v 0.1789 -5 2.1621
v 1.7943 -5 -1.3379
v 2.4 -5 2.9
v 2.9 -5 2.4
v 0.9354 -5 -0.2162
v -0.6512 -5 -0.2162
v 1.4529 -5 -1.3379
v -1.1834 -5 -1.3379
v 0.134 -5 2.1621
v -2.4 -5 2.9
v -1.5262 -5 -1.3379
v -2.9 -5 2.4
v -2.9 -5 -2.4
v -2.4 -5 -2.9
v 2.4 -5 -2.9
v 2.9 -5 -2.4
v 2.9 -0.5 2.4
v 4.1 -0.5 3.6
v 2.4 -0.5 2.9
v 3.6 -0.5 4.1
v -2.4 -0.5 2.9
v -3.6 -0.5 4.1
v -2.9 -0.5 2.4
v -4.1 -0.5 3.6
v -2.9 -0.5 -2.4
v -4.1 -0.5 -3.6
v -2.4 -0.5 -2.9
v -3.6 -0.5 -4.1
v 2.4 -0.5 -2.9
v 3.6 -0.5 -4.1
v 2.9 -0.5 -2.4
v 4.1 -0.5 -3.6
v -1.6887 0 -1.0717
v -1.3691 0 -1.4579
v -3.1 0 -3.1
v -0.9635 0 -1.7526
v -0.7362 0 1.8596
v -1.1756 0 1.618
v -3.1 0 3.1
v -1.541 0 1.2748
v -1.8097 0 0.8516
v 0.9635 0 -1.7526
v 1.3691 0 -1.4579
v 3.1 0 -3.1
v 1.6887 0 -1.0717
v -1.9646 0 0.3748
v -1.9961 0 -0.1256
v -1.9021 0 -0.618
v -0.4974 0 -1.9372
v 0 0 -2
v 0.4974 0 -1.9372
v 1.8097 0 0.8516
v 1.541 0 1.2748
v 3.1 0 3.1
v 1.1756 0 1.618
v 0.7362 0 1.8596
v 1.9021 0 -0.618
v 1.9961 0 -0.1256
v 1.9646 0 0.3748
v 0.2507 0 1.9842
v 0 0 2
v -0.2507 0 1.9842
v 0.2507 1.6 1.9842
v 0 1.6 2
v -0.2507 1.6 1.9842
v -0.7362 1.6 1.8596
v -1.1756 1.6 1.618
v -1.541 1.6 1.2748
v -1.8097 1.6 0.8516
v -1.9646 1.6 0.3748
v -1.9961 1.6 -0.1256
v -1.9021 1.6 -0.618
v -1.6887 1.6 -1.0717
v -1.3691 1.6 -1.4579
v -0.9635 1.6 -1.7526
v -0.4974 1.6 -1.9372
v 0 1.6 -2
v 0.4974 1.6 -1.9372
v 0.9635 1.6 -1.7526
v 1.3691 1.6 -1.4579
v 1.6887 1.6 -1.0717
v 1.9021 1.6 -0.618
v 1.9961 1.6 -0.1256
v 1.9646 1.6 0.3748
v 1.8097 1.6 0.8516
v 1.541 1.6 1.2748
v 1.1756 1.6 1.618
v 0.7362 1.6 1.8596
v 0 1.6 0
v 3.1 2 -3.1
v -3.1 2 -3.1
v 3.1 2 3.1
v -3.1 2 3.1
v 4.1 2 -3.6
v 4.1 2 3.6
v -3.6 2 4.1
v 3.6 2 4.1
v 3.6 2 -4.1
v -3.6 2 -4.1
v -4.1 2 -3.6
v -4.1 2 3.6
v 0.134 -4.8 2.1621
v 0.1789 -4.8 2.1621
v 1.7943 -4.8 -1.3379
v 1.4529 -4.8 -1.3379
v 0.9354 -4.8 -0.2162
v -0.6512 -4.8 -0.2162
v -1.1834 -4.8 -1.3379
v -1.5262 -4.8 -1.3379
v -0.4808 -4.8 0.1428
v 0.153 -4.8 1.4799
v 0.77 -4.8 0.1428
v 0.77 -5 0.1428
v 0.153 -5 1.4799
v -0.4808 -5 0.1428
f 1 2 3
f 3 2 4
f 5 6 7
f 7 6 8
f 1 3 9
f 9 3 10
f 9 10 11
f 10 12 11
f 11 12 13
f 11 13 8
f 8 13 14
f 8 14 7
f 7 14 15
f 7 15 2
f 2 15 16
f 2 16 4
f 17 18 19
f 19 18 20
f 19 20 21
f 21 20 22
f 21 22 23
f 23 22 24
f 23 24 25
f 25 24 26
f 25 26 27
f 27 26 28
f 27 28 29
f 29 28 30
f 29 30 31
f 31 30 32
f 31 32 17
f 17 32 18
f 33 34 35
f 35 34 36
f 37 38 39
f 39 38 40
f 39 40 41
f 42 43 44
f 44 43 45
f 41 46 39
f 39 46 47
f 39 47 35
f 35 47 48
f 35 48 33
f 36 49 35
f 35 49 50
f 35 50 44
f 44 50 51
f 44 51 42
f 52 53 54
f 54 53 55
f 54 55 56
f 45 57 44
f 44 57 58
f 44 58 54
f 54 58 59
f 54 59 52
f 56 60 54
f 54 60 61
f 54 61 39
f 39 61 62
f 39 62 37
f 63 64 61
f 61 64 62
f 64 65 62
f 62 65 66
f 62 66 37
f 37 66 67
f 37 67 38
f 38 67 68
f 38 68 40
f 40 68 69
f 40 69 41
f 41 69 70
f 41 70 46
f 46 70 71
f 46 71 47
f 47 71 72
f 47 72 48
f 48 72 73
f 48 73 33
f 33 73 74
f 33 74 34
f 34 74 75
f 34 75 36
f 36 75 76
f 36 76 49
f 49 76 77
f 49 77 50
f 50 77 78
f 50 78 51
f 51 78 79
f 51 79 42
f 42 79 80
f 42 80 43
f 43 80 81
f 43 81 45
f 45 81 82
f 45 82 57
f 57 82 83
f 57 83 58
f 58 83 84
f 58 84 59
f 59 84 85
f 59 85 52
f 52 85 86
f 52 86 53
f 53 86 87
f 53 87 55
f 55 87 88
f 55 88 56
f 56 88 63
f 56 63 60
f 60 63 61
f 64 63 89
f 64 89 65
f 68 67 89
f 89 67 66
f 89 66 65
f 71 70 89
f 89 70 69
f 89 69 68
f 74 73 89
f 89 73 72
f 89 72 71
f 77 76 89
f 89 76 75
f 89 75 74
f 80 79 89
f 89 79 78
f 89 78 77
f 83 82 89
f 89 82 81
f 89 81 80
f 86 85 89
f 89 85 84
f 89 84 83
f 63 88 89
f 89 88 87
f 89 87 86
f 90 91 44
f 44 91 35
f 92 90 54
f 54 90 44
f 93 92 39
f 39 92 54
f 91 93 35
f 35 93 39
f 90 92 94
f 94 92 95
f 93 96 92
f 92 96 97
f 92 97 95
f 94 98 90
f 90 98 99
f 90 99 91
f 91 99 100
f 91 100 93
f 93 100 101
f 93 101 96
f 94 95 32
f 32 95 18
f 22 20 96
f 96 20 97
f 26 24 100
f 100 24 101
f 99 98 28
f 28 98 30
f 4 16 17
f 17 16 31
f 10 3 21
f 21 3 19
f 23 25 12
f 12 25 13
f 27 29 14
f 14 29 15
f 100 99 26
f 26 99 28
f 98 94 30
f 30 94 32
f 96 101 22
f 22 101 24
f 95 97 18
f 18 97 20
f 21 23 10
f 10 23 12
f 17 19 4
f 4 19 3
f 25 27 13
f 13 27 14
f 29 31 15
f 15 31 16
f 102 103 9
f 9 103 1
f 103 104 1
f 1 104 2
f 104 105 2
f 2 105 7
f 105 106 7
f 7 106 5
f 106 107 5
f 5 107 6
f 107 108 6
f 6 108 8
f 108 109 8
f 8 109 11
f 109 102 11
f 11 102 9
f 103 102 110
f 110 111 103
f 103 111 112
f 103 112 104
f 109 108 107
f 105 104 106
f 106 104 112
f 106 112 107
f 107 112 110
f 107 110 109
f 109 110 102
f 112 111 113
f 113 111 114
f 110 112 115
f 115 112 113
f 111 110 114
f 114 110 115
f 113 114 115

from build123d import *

# Parameters (mm, degrees)
SKETCH1_R           = 2
BOSS_EXTRUDE1_DEPTH = 1.6
SKETCH1_3_W         = 8.2
SKETCH1_3_H         = 8.2
SKETCH1_3_W_2       = 6.2
SKETCH1_3_H_2       = 6.2
BOSS_EXTRUDE2_DEPTH = 2
SKETCH1_4_W         = 8.2
SKETCH1_4_H         = 8.2
BOSS_EXTRUDE3_DEPTH = 0.5
SKETCH3_W           = 5.8
SKETCH3_H           = 5.8
BOSS_EXTRUDE4_DEPTH = 4.5
CHAMFER1_SIZE       = 0.5
CUT_EXTRUDE1_DEPTH  = 0.2


with BuildPart() as part:
    # Sketch1 → Boss-Extrude1 (new body)
    with BuildSketch(Plane(origin=(0, 0, 0), x_dir=(1, 0, 0), z_dir=(0, 1, 0))):
        Circle(SKETCH1_R)
    extrude(amount=BOSS_EXTRUDE1_DEPTH)



with BuildPart() as body_2:
    # Sketch1<3> → Boss-Extrude2 (new body)
    with BuildSketch(Plane(origin=(0, 0, 0), x_dir=(1, 0, 0), z_dir=(0, 1, 0))):
        Rectangle(SKETCH1_3_W, SKETCH1_3_H)
        Rectangle(SKETCH1_3_W_2, SKETCH1_3_H_2, mode=Mode.SUBTRACT)
    extrude(amount=BOSS_EXTRUDE2_DEPTH)


with BuildPart() as part_1:
    add(part.part)

    add(body_2.part)  # Boss-Extrude3 merges body 2
    # Sketch1<4> → Boss-Extrude3 (add)
    with BuildSketch(Plane(origin=(0, 0, 0), x_dir=(1, 0, 0), z_dir=(0, 1, 0))):
        Rectangle(SKETCH1_4_W, SKETCH1_4_H)
    extrude(amount=-BOSS_EXTRUDE3_DEPTH)

    # Sketch3 → Boss-Extrude4 (add)
    with BuildSketch(Plane.XZ.offset(0.5)):
        Rectangle(SKETCH3_W, SKETCH3_H)
    extrude(amount=BOSS_EXTRUDE4_DEPTH)

    # Chamfer1
    chamfer1_edges = [part_1.edges().sort_by_distance(p)[0] for p in [
        (-4.1, 0.75, -4.1),
        (4.1, 0.75, -4.1),
        (-4.1, 0.75, 4.1),
        (4.1, 0.75, 4.1),
        (-2.9, -2.75, 2.9),
        (2.9, -2.75, 2.9),
        (-2.9, -2.75, -2.9),
        (2.9, -2.75, -2.9),
    ]]
    chamfer(chamfer1_edges, length=CHAMFER1_SIZE)

    # Sketch4 → Cut-Extrude1 (cut)
    with BuildSketch(Plane.XZ.offset(5)):
        Polygon((0.178918545, 2.162051717), (1.79430316, -1.337948283), (1.452856846, -1.337948283), (0.935428962, -0.216153411), (-0.65120966, -0.216153411), (-1.183361102, -1.337948283), (-1.52620966, -1.337948283), (0.13404675, 2.162051717), align=None)
        Polygon((0.152977039, 1.479860211), (-0.480837064, 0.142820948), (0.769964218, 0.142820948), align=None, mode=Mode.SUBTRACT)
    extrude(amount=-CUT_EXTRUDE1_DEPTH, mode=Mode.SUBTRACT)


solid = part_1.part
